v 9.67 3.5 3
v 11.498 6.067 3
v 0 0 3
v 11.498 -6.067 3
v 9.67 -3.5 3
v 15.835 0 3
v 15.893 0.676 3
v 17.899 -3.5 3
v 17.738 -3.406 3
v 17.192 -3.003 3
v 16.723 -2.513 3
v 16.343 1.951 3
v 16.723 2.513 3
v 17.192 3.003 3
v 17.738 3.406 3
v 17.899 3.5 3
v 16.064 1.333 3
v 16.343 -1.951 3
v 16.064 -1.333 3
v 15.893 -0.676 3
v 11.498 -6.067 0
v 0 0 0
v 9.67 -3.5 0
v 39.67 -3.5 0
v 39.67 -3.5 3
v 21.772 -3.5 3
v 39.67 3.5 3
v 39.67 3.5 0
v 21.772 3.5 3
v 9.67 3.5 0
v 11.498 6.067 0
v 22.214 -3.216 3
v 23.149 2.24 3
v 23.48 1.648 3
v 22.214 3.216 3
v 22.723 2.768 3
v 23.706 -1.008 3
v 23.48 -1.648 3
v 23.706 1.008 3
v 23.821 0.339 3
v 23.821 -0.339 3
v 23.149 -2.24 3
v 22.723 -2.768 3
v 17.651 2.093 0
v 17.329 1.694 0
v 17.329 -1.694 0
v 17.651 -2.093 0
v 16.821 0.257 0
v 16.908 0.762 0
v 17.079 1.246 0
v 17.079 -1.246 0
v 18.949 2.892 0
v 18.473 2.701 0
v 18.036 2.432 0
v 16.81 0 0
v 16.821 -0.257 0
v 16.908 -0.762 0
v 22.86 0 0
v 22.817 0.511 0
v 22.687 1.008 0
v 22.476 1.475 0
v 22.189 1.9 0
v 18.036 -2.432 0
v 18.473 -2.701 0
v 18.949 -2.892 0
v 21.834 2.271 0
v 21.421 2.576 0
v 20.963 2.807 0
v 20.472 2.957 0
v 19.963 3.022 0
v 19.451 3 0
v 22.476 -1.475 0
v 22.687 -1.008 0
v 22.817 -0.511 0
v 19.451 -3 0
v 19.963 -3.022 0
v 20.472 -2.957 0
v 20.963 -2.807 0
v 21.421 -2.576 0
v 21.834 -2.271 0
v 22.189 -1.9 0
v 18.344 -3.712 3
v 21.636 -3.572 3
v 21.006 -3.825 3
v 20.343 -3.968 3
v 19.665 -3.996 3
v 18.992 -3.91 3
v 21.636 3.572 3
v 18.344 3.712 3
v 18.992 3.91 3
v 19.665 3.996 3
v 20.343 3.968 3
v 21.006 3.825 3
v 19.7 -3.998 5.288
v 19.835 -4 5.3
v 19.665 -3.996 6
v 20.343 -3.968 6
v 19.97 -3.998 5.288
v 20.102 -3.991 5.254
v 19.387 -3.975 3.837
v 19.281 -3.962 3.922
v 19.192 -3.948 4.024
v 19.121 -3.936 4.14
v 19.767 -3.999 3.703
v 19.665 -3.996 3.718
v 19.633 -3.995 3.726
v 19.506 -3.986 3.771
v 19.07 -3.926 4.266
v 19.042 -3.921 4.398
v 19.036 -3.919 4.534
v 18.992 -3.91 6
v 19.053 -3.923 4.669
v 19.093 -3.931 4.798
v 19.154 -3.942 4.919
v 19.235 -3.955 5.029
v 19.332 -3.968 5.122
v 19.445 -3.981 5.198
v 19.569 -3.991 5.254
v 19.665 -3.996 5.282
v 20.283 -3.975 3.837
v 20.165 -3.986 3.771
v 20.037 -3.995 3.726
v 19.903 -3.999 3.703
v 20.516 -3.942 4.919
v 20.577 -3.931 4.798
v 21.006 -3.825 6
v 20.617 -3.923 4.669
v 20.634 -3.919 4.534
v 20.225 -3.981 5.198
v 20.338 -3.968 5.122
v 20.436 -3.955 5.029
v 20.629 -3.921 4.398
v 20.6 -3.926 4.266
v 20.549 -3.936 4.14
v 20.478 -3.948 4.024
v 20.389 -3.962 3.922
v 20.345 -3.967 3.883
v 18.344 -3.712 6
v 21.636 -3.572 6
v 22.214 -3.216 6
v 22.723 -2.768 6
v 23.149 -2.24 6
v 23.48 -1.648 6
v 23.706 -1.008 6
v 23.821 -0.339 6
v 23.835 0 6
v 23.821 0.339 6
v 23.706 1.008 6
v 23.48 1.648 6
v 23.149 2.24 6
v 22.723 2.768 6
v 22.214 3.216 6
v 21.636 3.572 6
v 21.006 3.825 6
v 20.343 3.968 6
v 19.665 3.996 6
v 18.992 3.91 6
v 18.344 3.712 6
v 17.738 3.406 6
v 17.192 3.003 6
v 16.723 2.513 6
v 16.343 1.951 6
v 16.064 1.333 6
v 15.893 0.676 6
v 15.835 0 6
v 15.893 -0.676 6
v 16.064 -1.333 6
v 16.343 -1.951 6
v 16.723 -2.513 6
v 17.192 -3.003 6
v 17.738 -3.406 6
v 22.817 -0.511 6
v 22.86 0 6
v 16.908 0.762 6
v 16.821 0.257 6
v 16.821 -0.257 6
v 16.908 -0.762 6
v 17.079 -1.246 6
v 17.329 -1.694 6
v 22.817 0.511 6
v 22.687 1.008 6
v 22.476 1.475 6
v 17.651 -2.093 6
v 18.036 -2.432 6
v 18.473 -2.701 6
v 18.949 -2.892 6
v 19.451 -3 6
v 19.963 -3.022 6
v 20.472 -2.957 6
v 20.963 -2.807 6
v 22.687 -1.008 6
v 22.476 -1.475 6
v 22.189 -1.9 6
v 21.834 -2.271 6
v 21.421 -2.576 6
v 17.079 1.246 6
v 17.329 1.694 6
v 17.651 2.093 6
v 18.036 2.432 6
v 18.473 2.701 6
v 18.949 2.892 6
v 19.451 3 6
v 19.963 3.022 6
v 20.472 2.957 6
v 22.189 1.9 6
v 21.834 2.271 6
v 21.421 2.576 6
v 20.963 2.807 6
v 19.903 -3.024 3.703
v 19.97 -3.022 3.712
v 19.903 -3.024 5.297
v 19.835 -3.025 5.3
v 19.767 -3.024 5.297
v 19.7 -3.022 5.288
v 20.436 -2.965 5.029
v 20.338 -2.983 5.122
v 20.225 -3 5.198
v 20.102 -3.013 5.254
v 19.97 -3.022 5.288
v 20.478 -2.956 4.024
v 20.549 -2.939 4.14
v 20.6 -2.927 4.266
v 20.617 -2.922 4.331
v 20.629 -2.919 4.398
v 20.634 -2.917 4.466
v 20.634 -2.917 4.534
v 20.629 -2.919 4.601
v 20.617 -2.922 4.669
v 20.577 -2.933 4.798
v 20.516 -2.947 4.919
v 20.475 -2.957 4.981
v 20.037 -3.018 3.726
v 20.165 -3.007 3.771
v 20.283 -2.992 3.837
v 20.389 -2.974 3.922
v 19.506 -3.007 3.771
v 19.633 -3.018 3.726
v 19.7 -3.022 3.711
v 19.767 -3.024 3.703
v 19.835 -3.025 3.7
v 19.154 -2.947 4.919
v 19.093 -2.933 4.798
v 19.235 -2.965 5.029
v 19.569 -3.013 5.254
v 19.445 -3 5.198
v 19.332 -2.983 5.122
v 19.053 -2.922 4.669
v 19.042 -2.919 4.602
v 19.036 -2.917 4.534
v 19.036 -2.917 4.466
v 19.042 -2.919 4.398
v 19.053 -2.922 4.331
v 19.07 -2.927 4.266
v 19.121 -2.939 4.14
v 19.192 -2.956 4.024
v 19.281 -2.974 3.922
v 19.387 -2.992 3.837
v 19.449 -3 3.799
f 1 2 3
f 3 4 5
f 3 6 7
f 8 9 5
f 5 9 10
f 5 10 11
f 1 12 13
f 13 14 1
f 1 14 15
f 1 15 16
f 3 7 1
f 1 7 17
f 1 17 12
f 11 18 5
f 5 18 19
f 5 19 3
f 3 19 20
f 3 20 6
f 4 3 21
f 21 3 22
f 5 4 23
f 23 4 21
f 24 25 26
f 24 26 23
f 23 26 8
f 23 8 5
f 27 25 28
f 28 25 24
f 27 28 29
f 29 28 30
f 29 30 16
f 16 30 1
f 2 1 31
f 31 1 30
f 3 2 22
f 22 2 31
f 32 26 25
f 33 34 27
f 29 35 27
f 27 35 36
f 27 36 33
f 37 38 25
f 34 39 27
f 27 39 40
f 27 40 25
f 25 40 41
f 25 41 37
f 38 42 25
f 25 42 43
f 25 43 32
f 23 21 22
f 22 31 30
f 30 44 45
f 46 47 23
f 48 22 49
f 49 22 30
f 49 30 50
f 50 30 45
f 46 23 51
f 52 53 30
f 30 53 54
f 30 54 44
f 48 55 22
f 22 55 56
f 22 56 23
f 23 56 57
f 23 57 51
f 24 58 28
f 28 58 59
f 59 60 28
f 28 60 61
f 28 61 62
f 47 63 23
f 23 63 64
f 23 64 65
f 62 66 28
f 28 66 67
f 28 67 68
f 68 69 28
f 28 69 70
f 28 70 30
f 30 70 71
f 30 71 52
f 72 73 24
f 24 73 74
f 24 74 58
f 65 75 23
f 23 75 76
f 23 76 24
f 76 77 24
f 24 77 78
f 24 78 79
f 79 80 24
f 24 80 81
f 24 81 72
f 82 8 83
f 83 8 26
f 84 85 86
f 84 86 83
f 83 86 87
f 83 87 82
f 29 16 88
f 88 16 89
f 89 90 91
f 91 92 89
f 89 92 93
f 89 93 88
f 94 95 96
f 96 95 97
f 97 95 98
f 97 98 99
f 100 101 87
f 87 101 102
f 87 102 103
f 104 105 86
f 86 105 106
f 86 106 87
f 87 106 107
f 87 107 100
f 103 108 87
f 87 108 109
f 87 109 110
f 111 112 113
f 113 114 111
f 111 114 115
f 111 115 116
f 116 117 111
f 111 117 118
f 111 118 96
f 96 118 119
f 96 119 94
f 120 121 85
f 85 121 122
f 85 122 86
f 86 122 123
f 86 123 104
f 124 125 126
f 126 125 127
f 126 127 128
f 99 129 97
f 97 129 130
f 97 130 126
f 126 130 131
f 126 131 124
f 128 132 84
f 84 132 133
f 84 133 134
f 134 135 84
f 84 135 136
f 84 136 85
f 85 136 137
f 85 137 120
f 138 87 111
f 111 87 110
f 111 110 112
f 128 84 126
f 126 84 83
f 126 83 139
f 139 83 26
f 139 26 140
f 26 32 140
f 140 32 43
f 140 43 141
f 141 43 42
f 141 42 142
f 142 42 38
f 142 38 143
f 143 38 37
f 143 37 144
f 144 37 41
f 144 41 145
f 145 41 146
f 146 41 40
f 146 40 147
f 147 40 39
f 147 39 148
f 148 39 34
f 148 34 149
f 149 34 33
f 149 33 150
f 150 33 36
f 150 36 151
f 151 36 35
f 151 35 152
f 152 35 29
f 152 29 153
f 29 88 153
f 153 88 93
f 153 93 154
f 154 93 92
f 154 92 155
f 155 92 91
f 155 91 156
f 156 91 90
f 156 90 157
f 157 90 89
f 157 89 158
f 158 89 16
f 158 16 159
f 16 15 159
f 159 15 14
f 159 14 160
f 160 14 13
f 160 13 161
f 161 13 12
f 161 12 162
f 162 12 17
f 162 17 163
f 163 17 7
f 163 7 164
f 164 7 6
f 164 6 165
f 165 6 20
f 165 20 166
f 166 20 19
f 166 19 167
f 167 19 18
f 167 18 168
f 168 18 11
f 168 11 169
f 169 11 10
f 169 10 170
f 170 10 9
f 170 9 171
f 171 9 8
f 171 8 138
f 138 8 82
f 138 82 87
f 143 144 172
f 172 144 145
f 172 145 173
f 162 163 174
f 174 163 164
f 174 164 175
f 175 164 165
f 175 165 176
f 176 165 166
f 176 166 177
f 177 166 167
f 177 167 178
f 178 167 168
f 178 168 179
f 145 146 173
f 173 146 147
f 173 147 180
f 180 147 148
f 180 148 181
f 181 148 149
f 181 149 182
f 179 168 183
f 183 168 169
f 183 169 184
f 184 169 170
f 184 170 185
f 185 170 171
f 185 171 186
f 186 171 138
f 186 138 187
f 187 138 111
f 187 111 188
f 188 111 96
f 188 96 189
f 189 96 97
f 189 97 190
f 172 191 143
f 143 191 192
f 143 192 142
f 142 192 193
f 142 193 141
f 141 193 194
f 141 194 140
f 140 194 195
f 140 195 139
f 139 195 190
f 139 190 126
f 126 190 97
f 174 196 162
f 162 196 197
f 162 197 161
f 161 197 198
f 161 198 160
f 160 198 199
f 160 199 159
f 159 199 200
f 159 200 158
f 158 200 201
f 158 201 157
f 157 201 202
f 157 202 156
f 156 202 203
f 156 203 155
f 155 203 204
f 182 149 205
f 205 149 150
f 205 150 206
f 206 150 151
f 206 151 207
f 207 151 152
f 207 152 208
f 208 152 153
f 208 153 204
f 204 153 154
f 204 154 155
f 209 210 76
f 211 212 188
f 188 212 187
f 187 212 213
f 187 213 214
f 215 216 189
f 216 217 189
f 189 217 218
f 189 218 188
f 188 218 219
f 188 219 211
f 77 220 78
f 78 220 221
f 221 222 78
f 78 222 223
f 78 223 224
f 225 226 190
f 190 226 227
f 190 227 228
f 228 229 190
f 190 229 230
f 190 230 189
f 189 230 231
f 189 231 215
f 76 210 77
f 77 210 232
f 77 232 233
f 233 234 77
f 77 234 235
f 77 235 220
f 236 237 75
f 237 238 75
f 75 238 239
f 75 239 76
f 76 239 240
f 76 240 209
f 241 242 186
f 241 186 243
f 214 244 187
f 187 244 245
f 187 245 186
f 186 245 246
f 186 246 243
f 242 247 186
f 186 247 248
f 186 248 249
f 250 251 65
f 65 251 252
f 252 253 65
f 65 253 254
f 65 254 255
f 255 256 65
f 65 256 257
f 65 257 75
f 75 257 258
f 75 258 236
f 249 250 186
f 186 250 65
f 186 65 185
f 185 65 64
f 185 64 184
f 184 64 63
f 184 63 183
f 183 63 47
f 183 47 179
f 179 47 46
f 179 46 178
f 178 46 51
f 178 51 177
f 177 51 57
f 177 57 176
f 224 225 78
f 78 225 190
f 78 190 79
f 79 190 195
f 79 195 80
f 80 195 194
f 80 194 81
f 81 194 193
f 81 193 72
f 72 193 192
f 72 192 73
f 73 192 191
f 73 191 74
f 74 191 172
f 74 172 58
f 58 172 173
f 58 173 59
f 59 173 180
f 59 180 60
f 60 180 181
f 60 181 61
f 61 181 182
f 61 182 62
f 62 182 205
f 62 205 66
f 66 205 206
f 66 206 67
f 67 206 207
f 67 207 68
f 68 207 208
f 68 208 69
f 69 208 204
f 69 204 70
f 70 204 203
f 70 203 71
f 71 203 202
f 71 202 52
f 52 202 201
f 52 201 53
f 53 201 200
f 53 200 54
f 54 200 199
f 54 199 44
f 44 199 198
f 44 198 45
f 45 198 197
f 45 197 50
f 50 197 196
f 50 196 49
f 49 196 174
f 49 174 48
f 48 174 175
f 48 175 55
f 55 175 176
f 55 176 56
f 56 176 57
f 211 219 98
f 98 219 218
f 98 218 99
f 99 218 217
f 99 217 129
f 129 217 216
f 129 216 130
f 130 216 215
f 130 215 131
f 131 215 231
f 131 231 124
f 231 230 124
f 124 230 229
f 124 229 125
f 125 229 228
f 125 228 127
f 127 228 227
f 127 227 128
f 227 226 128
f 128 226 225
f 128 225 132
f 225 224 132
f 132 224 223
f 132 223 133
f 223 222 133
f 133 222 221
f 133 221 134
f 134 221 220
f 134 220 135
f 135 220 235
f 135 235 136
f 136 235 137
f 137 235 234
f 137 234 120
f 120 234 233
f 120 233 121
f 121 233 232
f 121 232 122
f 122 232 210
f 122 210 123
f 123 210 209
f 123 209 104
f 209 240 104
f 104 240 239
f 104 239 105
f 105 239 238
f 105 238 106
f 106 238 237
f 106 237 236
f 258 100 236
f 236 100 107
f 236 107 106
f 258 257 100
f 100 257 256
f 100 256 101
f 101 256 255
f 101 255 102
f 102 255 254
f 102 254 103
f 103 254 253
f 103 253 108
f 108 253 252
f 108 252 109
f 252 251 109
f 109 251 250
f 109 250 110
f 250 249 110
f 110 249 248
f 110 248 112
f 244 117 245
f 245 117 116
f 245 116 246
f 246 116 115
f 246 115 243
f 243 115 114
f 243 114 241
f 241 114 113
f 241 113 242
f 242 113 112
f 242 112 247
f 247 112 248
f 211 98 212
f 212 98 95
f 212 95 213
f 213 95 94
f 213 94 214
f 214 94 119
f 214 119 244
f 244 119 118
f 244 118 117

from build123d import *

# Parameters (mm, degrees)
BOSS_EXTRUDE1_DEPTH     = 3
SKETCH8_R               = 4
BOSS_EXTRUDE4_DEPTH     = 3
CUT_EXTRUDE5_REACH      = 42.577
SKETCH9_R               = 3.025
CUT_EXTRUDE6_REACH      = 42.577
CUT_EXTRUDE6_END_RADIUS = 4
SKETCH10_R              = 0.8


with BuildPart() as part:
    # Sketch3 → Boss-Extrude1 (new body)
    with BuildSketch(Plane.XY):
        Polygon((0, 0), (11.497632607, 6.066666667), (9.670080369, 3.5), (39.670080369, 3.5), (39.670080369, -3.5), (9.670080369, -3.5), (11.497632607, -6.066666667), align=None)
    extrude(amount=BOSS_EXTRUDE1_DEPTH)

    # Sketch8 → Boss-Extrude4 (add)
    with BuildSketch(Plane.XY.offset(3)):
        with Locations(Location((19.835040185, 0, 0), (0, 0, 118.955024372))):
            Circle(SKETCH8_R)
    extrude(amount=BOSS_EXTRUDE4_DEPTH)

    # Sketch9 → Cut-Extrude5 (cut, up to next)
    with BuildSketch(Plane.XY.offset(6), mode=Mode.PRIVATE) as cut_extrude5_sk1:
        with Locations((19.835040185, 0)):
            Circle(SKETCH9_R)
    cut_extrude5_tool1 = extrude(cut_extrude5_sk1.sketch, amount=-CUT_EXTRUDE5_REACH, mode=Mode.PRIVATE) & part.part
    add(cut_extrude5_tool1.solids().sort_by_distance((19.83504, 0, 6))[0], mode=Mode.SUBTRACT)

    # Cut-Extrude6: up to this cylinder (the profile starts inside it)
    cut_extrude6_end = Plane(origin=(19.835040185, 0, 4.5), z_dir=(0, 0, -1)) * Cylinder(CUT_EXTRUDE6_END_RADIUS, 94.154, mode=Mode.PRIVATE)
    # Sketch10 → Cut-Extrude6 (cut, up to the surface)
    with BuildSketch(Plane(origin=(0, 0, 0), x_dir=(1, 0, 0), z_dir=(0, 1, 0)), mode=Mode.PRIVATE) as cut_extrude6_sk1:
        with Locations(Location((19.835040185, -4.5, 0), (0, 0, 270))):
            Circle(SKETCH10_R)
    cut_extrude6_tool1 = extrude(cut_extrude6_sk1.sketch, amount=-CUT_EXTRUDE6_REACH, mode=Mode.PRIVATE) & cut_extrude6_end
    add(cut_extrude6_tool1.solids().sort_by_distance((19.83504, 0, 4.5))[0], mode=Mode.SUBTRACT)


solid = part.part
